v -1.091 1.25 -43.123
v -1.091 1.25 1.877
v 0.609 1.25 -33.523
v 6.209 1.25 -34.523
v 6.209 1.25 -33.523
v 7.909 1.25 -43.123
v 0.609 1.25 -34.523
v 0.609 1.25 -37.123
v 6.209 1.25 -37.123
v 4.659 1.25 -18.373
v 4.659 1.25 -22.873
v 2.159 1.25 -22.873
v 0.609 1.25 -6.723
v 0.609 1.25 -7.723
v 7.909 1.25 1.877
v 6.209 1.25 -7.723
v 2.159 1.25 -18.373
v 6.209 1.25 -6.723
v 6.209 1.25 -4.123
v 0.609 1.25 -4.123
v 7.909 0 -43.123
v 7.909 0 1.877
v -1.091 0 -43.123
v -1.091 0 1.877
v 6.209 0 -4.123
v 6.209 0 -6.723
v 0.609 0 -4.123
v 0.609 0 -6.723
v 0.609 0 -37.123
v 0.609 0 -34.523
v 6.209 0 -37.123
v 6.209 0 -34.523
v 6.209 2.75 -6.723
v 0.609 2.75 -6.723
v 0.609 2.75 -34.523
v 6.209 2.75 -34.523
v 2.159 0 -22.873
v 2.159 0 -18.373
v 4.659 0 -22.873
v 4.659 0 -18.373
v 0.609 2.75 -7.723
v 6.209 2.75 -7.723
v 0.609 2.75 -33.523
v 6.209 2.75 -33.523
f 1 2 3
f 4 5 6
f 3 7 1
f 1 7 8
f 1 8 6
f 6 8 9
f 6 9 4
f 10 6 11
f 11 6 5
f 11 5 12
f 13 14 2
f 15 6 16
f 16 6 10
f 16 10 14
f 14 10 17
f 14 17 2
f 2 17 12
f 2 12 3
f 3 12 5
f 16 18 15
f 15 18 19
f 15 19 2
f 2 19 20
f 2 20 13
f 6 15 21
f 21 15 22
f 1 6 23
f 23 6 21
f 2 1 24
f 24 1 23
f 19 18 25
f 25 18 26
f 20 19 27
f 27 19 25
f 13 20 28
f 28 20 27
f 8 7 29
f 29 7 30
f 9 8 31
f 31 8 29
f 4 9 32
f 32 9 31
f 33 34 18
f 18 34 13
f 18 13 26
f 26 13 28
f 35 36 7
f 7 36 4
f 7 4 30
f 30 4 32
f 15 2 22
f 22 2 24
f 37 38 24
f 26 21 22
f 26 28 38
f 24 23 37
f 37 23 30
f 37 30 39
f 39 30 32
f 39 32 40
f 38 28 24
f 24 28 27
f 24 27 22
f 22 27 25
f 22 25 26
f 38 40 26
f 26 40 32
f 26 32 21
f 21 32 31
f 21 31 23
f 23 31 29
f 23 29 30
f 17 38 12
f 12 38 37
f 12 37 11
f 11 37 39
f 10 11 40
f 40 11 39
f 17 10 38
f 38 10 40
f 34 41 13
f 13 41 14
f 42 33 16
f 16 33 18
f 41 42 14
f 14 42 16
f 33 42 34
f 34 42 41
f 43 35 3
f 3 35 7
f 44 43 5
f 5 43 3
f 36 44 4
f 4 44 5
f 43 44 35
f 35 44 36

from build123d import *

# Parameters (mm, degrees)
ESQUISSE1_W                  = 9
ESQUISSE1_H                  = 45
ESQUISSE1_W_2                = 5.6
ESQUISSE1_H_2                = 2.6
BOSS_EXTRU_1_DEPTH           = 1.25
ENL_V_MAT_EXTRU_1_DEPTH      = 44.859616193
ENL_V_MAT_EXTRU_1_DEPTH_BACK = 44.859616193
ESQUISSE2_W                  = 2.5
ESQUISSE2_H                  = 4.5
ESQUISSE3_W                  = 5.6
ESQUISSE3_H                  = 1
BOSS_EXTRU_2_DEPTH           = 1.5


with BuildPart() as part:
    # Esquisse1 → Boss.-Extru.1 (new body)
    with BuildSketch(Plane(origin=(0, 0, 0), x_dir=(1, 0, 0), z_dir=(0, 1, 0))):
        with Locations((3.408982136, 20.622516556)):
            Rectangle(ESQUISSE1_W, ESQUISSE1_H)
        with Locations((3.408982136, 35.822516556)):
            Rectangle(ESQUISSE1_W_2, ESQUISSE1_H_2, mode=Mode.SUBTRACT)
        with Locations((3.408982136, 5.422516556)):
            Rectangle(ESQUISSE1_W_2, ESQUISSE1_H_2, mode=Mode.SUBTRACT)
    extrude(amount=BOSS_EXTRU_1_DEPTH)

    # Esquisse2 → Enlèv. mat.-Extru.1 (cut, two sides: drawn at the far end of the back side and taken through both)
    with BuildSketch(Plane.XZ.offset(-ENL_V_MAT_EXTRU_1_DEPTH_BACK)):
        with Locations((3.408982136, -20.622516556)):
            Rectangle(ESQUISSE2_W, ESQUISSE2_H)
    extrude(amount=ENL_V_MAT_EXTRU_1_DEPTH + ENL_V_MAT_EXTRU_1_DEPTH_BACK, mode=Mode.SUBTRACT)

    # Esquisse3 → Boss.-Extru.2 (add)
    with BuildSketch(Plane(origin=(0, 1.25, 0), x_dir=(1, 0, 0), z_dir=(0, 1, 0))):
        with Locations((3.408982136, 7.222516556)):
            Rectangle(ESQUISSE3_W, ESQUISSE3_H)
        with Locations((3.408982136, 34.022516556)):
            Rectangle(ESQUISSE3_W, ESQUISSE3_H)
    extrude(amount=BOSS_EXTRU_2_DEPTH)


solid = part.part
